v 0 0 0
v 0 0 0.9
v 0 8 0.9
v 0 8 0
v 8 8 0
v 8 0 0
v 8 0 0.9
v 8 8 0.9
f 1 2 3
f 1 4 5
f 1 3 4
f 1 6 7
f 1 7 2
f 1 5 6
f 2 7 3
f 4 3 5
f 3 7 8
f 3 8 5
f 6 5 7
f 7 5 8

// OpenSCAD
/* Warning, this is a very basic generator with a lot of approximation 
input data : [VQFN, 8LX, 8x8x0.9mm, 68, , A, C04-00491A]
generated by com.zoubworld.electronics.cad.model3d.Basic
Date : Sun Feb 15 10:50:48 CET 2026
*/

//body
color("black")
translate([0,0,0])
cube([8.0,8.0,0.9], center=false);
